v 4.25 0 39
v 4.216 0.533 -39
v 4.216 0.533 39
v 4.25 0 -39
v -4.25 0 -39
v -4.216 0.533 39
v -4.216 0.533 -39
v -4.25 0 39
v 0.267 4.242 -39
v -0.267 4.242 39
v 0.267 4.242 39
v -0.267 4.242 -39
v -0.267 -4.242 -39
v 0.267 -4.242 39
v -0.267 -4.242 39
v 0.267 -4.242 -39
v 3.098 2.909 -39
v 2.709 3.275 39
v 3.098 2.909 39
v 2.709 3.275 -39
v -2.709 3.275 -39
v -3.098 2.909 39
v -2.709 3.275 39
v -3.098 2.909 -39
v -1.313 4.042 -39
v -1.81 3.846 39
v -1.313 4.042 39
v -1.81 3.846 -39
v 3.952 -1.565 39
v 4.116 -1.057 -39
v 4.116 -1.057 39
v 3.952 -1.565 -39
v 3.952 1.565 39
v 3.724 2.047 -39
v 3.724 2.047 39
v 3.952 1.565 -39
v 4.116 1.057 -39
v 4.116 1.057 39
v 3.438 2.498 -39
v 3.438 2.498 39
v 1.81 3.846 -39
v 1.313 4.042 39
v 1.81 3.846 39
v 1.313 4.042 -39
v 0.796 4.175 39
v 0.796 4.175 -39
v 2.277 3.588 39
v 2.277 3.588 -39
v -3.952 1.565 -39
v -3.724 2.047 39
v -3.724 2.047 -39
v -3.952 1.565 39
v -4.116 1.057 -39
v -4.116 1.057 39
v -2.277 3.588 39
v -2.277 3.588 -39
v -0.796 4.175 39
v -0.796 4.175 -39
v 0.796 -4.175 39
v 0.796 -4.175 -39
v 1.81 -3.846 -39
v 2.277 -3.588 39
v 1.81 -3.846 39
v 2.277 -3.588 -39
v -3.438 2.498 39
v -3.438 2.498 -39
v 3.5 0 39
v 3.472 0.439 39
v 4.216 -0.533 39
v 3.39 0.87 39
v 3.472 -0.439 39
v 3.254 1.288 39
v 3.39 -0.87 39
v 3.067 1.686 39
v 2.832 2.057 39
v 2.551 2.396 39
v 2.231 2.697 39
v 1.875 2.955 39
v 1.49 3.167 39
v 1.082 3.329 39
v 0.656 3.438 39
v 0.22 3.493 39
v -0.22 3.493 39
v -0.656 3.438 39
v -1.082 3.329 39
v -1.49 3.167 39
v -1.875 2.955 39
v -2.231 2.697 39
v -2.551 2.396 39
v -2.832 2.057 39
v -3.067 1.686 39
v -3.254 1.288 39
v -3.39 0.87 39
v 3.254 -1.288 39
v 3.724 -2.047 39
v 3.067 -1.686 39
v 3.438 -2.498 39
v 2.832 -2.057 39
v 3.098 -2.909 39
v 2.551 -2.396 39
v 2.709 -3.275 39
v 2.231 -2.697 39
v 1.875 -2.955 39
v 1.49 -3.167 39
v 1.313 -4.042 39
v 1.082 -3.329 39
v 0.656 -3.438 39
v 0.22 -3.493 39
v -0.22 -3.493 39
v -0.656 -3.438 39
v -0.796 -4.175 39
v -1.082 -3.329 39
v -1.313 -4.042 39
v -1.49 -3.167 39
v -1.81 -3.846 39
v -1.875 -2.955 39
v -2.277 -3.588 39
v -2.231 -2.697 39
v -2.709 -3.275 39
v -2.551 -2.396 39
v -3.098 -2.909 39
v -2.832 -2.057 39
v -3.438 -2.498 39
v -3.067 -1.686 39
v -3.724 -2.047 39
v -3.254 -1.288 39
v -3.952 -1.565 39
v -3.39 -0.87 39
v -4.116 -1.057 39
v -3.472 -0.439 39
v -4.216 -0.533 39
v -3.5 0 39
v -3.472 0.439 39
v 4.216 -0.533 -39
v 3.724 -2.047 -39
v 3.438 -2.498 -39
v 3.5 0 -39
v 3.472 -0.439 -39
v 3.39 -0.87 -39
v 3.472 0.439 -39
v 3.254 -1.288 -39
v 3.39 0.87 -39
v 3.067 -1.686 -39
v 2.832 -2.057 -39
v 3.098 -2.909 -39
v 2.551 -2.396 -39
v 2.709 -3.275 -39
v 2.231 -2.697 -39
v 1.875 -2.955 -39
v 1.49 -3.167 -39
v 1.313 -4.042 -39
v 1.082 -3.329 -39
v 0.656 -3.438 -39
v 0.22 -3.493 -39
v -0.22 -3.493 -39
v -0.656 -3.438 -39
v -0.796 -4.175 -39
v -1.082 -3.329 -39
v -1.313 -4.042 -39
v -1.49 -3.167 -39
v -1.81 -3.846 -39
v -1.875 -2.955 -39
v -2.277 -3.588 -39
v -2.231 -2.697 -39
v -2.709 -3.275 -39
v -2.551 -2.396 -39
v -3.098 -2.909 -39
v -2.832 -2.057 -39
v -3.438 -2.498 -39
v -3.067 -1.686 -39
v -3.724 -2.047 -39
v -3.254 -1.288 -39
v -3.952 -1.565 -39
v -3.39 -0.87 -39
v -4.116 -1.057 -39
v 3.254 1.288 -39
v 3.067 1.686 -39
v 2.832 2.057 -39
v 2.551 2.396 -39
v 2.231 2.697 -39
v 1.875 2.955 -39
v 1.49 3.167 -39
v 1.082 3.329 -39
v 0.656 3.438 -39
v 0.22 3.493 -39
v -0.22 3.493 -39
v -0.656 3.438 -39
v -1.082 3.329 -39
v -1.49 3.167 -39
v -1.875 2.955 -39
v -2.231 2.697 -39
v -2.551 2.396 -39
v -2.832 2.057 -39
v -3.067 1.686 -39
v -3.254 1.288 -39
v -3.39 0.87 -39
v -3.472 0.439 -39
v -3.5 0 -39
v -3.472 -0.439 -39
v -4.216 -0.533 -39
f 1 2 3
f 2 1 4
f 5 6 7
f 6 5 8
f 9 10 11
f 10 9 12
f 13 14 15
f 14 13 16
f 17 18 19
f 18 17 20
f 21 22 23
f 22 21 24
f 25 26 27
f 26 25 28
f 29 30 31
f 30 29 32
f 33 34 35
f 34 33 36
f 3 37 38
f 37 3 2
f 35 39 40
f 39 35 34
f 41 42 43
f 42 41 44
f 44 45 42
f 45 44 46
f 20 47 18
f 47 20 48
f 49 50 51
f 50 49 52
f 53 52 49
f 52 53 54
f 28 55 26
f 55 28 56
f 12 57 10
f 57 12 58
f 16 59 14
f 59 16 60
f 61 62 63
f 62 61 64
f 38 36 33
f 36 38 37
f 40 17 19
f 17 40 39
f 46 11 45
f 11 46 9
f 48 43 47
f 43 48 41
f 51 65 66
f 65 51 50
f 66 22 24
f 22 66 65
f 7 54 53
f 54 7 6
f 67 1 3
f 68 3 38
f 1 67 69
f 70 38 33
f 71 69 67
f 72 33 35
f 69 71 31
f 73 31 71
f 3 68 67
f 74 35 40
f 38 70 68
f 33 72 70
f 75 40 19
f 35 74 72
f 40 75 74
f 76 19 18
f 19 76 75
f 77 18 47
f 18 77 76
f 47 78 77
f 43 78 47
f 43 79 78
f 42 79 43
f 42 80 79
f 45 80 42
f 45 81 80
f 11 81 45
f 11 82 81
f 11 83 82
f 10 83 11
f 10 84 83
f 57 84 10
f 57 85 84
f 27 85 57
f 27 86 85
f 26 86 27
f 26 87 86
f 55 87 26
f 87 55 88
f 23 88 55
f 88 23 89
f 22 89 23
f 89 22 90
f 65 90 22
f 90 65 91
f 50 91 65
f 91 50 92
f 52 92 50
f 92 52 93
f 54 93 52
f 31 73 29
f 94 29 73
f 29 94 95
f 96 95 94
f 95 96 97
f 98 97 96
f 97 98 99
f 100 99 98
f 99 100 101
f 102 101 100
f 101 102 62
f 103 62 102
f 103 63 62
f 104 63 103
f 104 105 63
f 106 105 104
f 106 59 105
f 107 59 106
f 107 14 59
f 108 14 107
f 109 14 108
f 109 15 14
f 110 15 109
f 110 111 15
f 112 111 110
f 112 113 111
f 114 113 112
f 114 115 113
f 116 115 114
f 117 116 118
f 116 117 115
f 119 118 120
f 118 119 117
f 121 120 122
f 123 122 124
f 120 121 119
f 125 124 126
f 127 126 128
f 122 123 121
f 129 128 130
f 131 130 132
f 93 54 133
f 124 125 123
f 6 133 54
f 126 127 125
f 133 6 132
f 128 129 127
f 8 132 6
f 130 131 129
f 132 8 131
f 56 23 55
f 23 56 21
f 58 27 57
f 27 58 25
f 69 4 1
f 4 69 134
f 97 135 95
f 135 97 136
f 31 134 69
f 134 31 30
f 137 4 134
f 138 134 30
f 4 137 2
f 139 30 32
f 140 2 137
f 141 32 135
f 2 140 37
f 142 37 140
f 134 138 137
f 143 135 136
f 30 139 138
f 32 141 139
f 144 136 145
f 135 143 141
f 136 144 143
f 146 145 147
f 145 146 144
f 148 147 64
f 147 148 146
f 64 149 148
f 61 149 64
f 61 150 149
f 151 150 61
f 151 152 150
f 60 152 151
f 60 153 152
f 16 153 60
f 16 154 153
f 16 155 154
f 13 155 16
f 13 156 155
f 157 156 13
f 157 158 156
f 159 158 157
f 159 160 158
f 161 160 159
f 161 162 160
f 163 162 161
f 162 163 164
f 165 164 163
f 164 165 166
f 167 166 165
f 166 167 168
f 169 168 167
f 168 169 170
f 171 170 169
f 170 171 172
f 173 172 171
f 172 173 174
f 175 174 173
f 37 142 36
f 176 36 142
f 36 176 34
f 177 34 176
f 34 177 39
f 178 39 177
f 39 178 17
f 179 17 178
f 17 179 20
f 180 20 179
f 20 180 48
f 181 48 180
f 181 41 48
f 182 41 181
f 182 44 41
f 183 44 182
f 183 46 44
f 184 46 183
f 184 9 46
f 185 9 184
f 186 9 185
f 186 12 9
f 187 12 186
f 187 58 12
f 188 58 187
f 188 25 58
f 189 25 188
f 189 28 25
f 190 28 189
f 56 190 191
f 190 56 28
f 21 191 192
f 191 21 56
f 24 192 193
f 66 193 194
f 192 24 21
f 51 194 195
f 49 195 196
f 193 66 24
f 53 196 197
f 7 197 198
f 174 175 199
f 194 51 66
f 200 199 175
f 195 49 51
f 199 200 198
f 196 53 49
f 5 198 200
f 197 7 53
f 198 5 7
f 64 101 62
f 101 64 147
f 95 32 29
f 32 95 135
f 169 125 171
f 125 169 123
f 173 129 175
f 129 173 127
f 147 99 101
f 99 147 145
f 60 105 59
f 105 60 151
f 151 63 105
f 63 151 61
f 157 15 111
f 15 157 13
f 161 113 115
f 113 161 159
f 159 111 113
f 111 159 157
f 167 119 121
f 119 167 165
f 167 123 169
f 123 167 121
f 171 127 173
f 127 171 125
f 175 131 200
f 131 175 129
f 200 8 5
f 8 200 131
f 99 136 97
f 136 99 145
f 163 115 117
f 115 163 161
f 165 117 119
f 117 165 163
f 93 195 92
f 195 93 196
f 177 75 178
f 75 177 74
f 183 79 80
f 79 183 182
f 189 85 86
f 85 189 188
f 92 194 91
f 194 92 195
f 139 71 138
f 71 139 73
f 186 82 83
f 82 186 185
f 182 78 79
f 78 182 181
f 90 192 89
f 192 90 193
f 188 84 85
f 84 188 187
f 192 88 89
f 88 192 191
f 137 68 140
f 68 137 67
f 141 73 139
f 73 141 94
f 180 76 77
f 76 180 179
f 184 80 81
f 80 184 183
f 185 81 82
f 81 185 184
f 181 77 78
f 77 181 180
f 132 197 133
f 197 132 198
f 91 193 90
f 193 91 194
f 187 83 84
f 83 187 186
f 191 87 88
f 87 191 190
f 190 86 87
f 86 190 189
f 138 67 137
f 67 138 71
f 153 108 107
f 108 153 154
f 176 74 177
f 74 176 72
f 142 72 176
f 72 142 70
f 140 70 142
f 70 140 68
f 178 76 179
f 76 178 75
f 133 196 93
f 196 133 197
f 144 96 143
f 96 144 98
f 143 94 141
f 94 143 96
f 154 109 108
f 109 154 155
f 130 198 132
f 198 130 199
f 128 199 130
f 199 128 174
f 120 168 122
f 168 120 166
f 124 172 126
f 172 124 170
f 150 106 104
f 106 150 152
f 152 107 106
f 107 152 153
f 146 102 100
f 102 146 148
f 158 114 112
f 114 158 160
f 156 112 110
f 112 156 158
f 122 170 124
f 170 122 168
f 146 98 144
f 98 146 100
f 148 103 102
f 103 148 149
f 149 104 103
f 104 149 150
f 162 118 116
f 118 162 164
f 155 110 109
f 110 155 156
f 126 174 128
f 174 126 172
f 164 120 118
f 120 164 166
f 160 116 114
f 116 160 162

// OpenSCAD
$fn = 50;


difference() {
	union() {
		translate(v = [0, 0, -39.0000000000]) {
			cylinder(h = 78, r = 4.2500000000);
		}
	}
	union() {
		translate(v = [0, 0, -100.0000000000]) {
			cylinder(h = 200, r = 3.5000000000);
		}
	}
}
